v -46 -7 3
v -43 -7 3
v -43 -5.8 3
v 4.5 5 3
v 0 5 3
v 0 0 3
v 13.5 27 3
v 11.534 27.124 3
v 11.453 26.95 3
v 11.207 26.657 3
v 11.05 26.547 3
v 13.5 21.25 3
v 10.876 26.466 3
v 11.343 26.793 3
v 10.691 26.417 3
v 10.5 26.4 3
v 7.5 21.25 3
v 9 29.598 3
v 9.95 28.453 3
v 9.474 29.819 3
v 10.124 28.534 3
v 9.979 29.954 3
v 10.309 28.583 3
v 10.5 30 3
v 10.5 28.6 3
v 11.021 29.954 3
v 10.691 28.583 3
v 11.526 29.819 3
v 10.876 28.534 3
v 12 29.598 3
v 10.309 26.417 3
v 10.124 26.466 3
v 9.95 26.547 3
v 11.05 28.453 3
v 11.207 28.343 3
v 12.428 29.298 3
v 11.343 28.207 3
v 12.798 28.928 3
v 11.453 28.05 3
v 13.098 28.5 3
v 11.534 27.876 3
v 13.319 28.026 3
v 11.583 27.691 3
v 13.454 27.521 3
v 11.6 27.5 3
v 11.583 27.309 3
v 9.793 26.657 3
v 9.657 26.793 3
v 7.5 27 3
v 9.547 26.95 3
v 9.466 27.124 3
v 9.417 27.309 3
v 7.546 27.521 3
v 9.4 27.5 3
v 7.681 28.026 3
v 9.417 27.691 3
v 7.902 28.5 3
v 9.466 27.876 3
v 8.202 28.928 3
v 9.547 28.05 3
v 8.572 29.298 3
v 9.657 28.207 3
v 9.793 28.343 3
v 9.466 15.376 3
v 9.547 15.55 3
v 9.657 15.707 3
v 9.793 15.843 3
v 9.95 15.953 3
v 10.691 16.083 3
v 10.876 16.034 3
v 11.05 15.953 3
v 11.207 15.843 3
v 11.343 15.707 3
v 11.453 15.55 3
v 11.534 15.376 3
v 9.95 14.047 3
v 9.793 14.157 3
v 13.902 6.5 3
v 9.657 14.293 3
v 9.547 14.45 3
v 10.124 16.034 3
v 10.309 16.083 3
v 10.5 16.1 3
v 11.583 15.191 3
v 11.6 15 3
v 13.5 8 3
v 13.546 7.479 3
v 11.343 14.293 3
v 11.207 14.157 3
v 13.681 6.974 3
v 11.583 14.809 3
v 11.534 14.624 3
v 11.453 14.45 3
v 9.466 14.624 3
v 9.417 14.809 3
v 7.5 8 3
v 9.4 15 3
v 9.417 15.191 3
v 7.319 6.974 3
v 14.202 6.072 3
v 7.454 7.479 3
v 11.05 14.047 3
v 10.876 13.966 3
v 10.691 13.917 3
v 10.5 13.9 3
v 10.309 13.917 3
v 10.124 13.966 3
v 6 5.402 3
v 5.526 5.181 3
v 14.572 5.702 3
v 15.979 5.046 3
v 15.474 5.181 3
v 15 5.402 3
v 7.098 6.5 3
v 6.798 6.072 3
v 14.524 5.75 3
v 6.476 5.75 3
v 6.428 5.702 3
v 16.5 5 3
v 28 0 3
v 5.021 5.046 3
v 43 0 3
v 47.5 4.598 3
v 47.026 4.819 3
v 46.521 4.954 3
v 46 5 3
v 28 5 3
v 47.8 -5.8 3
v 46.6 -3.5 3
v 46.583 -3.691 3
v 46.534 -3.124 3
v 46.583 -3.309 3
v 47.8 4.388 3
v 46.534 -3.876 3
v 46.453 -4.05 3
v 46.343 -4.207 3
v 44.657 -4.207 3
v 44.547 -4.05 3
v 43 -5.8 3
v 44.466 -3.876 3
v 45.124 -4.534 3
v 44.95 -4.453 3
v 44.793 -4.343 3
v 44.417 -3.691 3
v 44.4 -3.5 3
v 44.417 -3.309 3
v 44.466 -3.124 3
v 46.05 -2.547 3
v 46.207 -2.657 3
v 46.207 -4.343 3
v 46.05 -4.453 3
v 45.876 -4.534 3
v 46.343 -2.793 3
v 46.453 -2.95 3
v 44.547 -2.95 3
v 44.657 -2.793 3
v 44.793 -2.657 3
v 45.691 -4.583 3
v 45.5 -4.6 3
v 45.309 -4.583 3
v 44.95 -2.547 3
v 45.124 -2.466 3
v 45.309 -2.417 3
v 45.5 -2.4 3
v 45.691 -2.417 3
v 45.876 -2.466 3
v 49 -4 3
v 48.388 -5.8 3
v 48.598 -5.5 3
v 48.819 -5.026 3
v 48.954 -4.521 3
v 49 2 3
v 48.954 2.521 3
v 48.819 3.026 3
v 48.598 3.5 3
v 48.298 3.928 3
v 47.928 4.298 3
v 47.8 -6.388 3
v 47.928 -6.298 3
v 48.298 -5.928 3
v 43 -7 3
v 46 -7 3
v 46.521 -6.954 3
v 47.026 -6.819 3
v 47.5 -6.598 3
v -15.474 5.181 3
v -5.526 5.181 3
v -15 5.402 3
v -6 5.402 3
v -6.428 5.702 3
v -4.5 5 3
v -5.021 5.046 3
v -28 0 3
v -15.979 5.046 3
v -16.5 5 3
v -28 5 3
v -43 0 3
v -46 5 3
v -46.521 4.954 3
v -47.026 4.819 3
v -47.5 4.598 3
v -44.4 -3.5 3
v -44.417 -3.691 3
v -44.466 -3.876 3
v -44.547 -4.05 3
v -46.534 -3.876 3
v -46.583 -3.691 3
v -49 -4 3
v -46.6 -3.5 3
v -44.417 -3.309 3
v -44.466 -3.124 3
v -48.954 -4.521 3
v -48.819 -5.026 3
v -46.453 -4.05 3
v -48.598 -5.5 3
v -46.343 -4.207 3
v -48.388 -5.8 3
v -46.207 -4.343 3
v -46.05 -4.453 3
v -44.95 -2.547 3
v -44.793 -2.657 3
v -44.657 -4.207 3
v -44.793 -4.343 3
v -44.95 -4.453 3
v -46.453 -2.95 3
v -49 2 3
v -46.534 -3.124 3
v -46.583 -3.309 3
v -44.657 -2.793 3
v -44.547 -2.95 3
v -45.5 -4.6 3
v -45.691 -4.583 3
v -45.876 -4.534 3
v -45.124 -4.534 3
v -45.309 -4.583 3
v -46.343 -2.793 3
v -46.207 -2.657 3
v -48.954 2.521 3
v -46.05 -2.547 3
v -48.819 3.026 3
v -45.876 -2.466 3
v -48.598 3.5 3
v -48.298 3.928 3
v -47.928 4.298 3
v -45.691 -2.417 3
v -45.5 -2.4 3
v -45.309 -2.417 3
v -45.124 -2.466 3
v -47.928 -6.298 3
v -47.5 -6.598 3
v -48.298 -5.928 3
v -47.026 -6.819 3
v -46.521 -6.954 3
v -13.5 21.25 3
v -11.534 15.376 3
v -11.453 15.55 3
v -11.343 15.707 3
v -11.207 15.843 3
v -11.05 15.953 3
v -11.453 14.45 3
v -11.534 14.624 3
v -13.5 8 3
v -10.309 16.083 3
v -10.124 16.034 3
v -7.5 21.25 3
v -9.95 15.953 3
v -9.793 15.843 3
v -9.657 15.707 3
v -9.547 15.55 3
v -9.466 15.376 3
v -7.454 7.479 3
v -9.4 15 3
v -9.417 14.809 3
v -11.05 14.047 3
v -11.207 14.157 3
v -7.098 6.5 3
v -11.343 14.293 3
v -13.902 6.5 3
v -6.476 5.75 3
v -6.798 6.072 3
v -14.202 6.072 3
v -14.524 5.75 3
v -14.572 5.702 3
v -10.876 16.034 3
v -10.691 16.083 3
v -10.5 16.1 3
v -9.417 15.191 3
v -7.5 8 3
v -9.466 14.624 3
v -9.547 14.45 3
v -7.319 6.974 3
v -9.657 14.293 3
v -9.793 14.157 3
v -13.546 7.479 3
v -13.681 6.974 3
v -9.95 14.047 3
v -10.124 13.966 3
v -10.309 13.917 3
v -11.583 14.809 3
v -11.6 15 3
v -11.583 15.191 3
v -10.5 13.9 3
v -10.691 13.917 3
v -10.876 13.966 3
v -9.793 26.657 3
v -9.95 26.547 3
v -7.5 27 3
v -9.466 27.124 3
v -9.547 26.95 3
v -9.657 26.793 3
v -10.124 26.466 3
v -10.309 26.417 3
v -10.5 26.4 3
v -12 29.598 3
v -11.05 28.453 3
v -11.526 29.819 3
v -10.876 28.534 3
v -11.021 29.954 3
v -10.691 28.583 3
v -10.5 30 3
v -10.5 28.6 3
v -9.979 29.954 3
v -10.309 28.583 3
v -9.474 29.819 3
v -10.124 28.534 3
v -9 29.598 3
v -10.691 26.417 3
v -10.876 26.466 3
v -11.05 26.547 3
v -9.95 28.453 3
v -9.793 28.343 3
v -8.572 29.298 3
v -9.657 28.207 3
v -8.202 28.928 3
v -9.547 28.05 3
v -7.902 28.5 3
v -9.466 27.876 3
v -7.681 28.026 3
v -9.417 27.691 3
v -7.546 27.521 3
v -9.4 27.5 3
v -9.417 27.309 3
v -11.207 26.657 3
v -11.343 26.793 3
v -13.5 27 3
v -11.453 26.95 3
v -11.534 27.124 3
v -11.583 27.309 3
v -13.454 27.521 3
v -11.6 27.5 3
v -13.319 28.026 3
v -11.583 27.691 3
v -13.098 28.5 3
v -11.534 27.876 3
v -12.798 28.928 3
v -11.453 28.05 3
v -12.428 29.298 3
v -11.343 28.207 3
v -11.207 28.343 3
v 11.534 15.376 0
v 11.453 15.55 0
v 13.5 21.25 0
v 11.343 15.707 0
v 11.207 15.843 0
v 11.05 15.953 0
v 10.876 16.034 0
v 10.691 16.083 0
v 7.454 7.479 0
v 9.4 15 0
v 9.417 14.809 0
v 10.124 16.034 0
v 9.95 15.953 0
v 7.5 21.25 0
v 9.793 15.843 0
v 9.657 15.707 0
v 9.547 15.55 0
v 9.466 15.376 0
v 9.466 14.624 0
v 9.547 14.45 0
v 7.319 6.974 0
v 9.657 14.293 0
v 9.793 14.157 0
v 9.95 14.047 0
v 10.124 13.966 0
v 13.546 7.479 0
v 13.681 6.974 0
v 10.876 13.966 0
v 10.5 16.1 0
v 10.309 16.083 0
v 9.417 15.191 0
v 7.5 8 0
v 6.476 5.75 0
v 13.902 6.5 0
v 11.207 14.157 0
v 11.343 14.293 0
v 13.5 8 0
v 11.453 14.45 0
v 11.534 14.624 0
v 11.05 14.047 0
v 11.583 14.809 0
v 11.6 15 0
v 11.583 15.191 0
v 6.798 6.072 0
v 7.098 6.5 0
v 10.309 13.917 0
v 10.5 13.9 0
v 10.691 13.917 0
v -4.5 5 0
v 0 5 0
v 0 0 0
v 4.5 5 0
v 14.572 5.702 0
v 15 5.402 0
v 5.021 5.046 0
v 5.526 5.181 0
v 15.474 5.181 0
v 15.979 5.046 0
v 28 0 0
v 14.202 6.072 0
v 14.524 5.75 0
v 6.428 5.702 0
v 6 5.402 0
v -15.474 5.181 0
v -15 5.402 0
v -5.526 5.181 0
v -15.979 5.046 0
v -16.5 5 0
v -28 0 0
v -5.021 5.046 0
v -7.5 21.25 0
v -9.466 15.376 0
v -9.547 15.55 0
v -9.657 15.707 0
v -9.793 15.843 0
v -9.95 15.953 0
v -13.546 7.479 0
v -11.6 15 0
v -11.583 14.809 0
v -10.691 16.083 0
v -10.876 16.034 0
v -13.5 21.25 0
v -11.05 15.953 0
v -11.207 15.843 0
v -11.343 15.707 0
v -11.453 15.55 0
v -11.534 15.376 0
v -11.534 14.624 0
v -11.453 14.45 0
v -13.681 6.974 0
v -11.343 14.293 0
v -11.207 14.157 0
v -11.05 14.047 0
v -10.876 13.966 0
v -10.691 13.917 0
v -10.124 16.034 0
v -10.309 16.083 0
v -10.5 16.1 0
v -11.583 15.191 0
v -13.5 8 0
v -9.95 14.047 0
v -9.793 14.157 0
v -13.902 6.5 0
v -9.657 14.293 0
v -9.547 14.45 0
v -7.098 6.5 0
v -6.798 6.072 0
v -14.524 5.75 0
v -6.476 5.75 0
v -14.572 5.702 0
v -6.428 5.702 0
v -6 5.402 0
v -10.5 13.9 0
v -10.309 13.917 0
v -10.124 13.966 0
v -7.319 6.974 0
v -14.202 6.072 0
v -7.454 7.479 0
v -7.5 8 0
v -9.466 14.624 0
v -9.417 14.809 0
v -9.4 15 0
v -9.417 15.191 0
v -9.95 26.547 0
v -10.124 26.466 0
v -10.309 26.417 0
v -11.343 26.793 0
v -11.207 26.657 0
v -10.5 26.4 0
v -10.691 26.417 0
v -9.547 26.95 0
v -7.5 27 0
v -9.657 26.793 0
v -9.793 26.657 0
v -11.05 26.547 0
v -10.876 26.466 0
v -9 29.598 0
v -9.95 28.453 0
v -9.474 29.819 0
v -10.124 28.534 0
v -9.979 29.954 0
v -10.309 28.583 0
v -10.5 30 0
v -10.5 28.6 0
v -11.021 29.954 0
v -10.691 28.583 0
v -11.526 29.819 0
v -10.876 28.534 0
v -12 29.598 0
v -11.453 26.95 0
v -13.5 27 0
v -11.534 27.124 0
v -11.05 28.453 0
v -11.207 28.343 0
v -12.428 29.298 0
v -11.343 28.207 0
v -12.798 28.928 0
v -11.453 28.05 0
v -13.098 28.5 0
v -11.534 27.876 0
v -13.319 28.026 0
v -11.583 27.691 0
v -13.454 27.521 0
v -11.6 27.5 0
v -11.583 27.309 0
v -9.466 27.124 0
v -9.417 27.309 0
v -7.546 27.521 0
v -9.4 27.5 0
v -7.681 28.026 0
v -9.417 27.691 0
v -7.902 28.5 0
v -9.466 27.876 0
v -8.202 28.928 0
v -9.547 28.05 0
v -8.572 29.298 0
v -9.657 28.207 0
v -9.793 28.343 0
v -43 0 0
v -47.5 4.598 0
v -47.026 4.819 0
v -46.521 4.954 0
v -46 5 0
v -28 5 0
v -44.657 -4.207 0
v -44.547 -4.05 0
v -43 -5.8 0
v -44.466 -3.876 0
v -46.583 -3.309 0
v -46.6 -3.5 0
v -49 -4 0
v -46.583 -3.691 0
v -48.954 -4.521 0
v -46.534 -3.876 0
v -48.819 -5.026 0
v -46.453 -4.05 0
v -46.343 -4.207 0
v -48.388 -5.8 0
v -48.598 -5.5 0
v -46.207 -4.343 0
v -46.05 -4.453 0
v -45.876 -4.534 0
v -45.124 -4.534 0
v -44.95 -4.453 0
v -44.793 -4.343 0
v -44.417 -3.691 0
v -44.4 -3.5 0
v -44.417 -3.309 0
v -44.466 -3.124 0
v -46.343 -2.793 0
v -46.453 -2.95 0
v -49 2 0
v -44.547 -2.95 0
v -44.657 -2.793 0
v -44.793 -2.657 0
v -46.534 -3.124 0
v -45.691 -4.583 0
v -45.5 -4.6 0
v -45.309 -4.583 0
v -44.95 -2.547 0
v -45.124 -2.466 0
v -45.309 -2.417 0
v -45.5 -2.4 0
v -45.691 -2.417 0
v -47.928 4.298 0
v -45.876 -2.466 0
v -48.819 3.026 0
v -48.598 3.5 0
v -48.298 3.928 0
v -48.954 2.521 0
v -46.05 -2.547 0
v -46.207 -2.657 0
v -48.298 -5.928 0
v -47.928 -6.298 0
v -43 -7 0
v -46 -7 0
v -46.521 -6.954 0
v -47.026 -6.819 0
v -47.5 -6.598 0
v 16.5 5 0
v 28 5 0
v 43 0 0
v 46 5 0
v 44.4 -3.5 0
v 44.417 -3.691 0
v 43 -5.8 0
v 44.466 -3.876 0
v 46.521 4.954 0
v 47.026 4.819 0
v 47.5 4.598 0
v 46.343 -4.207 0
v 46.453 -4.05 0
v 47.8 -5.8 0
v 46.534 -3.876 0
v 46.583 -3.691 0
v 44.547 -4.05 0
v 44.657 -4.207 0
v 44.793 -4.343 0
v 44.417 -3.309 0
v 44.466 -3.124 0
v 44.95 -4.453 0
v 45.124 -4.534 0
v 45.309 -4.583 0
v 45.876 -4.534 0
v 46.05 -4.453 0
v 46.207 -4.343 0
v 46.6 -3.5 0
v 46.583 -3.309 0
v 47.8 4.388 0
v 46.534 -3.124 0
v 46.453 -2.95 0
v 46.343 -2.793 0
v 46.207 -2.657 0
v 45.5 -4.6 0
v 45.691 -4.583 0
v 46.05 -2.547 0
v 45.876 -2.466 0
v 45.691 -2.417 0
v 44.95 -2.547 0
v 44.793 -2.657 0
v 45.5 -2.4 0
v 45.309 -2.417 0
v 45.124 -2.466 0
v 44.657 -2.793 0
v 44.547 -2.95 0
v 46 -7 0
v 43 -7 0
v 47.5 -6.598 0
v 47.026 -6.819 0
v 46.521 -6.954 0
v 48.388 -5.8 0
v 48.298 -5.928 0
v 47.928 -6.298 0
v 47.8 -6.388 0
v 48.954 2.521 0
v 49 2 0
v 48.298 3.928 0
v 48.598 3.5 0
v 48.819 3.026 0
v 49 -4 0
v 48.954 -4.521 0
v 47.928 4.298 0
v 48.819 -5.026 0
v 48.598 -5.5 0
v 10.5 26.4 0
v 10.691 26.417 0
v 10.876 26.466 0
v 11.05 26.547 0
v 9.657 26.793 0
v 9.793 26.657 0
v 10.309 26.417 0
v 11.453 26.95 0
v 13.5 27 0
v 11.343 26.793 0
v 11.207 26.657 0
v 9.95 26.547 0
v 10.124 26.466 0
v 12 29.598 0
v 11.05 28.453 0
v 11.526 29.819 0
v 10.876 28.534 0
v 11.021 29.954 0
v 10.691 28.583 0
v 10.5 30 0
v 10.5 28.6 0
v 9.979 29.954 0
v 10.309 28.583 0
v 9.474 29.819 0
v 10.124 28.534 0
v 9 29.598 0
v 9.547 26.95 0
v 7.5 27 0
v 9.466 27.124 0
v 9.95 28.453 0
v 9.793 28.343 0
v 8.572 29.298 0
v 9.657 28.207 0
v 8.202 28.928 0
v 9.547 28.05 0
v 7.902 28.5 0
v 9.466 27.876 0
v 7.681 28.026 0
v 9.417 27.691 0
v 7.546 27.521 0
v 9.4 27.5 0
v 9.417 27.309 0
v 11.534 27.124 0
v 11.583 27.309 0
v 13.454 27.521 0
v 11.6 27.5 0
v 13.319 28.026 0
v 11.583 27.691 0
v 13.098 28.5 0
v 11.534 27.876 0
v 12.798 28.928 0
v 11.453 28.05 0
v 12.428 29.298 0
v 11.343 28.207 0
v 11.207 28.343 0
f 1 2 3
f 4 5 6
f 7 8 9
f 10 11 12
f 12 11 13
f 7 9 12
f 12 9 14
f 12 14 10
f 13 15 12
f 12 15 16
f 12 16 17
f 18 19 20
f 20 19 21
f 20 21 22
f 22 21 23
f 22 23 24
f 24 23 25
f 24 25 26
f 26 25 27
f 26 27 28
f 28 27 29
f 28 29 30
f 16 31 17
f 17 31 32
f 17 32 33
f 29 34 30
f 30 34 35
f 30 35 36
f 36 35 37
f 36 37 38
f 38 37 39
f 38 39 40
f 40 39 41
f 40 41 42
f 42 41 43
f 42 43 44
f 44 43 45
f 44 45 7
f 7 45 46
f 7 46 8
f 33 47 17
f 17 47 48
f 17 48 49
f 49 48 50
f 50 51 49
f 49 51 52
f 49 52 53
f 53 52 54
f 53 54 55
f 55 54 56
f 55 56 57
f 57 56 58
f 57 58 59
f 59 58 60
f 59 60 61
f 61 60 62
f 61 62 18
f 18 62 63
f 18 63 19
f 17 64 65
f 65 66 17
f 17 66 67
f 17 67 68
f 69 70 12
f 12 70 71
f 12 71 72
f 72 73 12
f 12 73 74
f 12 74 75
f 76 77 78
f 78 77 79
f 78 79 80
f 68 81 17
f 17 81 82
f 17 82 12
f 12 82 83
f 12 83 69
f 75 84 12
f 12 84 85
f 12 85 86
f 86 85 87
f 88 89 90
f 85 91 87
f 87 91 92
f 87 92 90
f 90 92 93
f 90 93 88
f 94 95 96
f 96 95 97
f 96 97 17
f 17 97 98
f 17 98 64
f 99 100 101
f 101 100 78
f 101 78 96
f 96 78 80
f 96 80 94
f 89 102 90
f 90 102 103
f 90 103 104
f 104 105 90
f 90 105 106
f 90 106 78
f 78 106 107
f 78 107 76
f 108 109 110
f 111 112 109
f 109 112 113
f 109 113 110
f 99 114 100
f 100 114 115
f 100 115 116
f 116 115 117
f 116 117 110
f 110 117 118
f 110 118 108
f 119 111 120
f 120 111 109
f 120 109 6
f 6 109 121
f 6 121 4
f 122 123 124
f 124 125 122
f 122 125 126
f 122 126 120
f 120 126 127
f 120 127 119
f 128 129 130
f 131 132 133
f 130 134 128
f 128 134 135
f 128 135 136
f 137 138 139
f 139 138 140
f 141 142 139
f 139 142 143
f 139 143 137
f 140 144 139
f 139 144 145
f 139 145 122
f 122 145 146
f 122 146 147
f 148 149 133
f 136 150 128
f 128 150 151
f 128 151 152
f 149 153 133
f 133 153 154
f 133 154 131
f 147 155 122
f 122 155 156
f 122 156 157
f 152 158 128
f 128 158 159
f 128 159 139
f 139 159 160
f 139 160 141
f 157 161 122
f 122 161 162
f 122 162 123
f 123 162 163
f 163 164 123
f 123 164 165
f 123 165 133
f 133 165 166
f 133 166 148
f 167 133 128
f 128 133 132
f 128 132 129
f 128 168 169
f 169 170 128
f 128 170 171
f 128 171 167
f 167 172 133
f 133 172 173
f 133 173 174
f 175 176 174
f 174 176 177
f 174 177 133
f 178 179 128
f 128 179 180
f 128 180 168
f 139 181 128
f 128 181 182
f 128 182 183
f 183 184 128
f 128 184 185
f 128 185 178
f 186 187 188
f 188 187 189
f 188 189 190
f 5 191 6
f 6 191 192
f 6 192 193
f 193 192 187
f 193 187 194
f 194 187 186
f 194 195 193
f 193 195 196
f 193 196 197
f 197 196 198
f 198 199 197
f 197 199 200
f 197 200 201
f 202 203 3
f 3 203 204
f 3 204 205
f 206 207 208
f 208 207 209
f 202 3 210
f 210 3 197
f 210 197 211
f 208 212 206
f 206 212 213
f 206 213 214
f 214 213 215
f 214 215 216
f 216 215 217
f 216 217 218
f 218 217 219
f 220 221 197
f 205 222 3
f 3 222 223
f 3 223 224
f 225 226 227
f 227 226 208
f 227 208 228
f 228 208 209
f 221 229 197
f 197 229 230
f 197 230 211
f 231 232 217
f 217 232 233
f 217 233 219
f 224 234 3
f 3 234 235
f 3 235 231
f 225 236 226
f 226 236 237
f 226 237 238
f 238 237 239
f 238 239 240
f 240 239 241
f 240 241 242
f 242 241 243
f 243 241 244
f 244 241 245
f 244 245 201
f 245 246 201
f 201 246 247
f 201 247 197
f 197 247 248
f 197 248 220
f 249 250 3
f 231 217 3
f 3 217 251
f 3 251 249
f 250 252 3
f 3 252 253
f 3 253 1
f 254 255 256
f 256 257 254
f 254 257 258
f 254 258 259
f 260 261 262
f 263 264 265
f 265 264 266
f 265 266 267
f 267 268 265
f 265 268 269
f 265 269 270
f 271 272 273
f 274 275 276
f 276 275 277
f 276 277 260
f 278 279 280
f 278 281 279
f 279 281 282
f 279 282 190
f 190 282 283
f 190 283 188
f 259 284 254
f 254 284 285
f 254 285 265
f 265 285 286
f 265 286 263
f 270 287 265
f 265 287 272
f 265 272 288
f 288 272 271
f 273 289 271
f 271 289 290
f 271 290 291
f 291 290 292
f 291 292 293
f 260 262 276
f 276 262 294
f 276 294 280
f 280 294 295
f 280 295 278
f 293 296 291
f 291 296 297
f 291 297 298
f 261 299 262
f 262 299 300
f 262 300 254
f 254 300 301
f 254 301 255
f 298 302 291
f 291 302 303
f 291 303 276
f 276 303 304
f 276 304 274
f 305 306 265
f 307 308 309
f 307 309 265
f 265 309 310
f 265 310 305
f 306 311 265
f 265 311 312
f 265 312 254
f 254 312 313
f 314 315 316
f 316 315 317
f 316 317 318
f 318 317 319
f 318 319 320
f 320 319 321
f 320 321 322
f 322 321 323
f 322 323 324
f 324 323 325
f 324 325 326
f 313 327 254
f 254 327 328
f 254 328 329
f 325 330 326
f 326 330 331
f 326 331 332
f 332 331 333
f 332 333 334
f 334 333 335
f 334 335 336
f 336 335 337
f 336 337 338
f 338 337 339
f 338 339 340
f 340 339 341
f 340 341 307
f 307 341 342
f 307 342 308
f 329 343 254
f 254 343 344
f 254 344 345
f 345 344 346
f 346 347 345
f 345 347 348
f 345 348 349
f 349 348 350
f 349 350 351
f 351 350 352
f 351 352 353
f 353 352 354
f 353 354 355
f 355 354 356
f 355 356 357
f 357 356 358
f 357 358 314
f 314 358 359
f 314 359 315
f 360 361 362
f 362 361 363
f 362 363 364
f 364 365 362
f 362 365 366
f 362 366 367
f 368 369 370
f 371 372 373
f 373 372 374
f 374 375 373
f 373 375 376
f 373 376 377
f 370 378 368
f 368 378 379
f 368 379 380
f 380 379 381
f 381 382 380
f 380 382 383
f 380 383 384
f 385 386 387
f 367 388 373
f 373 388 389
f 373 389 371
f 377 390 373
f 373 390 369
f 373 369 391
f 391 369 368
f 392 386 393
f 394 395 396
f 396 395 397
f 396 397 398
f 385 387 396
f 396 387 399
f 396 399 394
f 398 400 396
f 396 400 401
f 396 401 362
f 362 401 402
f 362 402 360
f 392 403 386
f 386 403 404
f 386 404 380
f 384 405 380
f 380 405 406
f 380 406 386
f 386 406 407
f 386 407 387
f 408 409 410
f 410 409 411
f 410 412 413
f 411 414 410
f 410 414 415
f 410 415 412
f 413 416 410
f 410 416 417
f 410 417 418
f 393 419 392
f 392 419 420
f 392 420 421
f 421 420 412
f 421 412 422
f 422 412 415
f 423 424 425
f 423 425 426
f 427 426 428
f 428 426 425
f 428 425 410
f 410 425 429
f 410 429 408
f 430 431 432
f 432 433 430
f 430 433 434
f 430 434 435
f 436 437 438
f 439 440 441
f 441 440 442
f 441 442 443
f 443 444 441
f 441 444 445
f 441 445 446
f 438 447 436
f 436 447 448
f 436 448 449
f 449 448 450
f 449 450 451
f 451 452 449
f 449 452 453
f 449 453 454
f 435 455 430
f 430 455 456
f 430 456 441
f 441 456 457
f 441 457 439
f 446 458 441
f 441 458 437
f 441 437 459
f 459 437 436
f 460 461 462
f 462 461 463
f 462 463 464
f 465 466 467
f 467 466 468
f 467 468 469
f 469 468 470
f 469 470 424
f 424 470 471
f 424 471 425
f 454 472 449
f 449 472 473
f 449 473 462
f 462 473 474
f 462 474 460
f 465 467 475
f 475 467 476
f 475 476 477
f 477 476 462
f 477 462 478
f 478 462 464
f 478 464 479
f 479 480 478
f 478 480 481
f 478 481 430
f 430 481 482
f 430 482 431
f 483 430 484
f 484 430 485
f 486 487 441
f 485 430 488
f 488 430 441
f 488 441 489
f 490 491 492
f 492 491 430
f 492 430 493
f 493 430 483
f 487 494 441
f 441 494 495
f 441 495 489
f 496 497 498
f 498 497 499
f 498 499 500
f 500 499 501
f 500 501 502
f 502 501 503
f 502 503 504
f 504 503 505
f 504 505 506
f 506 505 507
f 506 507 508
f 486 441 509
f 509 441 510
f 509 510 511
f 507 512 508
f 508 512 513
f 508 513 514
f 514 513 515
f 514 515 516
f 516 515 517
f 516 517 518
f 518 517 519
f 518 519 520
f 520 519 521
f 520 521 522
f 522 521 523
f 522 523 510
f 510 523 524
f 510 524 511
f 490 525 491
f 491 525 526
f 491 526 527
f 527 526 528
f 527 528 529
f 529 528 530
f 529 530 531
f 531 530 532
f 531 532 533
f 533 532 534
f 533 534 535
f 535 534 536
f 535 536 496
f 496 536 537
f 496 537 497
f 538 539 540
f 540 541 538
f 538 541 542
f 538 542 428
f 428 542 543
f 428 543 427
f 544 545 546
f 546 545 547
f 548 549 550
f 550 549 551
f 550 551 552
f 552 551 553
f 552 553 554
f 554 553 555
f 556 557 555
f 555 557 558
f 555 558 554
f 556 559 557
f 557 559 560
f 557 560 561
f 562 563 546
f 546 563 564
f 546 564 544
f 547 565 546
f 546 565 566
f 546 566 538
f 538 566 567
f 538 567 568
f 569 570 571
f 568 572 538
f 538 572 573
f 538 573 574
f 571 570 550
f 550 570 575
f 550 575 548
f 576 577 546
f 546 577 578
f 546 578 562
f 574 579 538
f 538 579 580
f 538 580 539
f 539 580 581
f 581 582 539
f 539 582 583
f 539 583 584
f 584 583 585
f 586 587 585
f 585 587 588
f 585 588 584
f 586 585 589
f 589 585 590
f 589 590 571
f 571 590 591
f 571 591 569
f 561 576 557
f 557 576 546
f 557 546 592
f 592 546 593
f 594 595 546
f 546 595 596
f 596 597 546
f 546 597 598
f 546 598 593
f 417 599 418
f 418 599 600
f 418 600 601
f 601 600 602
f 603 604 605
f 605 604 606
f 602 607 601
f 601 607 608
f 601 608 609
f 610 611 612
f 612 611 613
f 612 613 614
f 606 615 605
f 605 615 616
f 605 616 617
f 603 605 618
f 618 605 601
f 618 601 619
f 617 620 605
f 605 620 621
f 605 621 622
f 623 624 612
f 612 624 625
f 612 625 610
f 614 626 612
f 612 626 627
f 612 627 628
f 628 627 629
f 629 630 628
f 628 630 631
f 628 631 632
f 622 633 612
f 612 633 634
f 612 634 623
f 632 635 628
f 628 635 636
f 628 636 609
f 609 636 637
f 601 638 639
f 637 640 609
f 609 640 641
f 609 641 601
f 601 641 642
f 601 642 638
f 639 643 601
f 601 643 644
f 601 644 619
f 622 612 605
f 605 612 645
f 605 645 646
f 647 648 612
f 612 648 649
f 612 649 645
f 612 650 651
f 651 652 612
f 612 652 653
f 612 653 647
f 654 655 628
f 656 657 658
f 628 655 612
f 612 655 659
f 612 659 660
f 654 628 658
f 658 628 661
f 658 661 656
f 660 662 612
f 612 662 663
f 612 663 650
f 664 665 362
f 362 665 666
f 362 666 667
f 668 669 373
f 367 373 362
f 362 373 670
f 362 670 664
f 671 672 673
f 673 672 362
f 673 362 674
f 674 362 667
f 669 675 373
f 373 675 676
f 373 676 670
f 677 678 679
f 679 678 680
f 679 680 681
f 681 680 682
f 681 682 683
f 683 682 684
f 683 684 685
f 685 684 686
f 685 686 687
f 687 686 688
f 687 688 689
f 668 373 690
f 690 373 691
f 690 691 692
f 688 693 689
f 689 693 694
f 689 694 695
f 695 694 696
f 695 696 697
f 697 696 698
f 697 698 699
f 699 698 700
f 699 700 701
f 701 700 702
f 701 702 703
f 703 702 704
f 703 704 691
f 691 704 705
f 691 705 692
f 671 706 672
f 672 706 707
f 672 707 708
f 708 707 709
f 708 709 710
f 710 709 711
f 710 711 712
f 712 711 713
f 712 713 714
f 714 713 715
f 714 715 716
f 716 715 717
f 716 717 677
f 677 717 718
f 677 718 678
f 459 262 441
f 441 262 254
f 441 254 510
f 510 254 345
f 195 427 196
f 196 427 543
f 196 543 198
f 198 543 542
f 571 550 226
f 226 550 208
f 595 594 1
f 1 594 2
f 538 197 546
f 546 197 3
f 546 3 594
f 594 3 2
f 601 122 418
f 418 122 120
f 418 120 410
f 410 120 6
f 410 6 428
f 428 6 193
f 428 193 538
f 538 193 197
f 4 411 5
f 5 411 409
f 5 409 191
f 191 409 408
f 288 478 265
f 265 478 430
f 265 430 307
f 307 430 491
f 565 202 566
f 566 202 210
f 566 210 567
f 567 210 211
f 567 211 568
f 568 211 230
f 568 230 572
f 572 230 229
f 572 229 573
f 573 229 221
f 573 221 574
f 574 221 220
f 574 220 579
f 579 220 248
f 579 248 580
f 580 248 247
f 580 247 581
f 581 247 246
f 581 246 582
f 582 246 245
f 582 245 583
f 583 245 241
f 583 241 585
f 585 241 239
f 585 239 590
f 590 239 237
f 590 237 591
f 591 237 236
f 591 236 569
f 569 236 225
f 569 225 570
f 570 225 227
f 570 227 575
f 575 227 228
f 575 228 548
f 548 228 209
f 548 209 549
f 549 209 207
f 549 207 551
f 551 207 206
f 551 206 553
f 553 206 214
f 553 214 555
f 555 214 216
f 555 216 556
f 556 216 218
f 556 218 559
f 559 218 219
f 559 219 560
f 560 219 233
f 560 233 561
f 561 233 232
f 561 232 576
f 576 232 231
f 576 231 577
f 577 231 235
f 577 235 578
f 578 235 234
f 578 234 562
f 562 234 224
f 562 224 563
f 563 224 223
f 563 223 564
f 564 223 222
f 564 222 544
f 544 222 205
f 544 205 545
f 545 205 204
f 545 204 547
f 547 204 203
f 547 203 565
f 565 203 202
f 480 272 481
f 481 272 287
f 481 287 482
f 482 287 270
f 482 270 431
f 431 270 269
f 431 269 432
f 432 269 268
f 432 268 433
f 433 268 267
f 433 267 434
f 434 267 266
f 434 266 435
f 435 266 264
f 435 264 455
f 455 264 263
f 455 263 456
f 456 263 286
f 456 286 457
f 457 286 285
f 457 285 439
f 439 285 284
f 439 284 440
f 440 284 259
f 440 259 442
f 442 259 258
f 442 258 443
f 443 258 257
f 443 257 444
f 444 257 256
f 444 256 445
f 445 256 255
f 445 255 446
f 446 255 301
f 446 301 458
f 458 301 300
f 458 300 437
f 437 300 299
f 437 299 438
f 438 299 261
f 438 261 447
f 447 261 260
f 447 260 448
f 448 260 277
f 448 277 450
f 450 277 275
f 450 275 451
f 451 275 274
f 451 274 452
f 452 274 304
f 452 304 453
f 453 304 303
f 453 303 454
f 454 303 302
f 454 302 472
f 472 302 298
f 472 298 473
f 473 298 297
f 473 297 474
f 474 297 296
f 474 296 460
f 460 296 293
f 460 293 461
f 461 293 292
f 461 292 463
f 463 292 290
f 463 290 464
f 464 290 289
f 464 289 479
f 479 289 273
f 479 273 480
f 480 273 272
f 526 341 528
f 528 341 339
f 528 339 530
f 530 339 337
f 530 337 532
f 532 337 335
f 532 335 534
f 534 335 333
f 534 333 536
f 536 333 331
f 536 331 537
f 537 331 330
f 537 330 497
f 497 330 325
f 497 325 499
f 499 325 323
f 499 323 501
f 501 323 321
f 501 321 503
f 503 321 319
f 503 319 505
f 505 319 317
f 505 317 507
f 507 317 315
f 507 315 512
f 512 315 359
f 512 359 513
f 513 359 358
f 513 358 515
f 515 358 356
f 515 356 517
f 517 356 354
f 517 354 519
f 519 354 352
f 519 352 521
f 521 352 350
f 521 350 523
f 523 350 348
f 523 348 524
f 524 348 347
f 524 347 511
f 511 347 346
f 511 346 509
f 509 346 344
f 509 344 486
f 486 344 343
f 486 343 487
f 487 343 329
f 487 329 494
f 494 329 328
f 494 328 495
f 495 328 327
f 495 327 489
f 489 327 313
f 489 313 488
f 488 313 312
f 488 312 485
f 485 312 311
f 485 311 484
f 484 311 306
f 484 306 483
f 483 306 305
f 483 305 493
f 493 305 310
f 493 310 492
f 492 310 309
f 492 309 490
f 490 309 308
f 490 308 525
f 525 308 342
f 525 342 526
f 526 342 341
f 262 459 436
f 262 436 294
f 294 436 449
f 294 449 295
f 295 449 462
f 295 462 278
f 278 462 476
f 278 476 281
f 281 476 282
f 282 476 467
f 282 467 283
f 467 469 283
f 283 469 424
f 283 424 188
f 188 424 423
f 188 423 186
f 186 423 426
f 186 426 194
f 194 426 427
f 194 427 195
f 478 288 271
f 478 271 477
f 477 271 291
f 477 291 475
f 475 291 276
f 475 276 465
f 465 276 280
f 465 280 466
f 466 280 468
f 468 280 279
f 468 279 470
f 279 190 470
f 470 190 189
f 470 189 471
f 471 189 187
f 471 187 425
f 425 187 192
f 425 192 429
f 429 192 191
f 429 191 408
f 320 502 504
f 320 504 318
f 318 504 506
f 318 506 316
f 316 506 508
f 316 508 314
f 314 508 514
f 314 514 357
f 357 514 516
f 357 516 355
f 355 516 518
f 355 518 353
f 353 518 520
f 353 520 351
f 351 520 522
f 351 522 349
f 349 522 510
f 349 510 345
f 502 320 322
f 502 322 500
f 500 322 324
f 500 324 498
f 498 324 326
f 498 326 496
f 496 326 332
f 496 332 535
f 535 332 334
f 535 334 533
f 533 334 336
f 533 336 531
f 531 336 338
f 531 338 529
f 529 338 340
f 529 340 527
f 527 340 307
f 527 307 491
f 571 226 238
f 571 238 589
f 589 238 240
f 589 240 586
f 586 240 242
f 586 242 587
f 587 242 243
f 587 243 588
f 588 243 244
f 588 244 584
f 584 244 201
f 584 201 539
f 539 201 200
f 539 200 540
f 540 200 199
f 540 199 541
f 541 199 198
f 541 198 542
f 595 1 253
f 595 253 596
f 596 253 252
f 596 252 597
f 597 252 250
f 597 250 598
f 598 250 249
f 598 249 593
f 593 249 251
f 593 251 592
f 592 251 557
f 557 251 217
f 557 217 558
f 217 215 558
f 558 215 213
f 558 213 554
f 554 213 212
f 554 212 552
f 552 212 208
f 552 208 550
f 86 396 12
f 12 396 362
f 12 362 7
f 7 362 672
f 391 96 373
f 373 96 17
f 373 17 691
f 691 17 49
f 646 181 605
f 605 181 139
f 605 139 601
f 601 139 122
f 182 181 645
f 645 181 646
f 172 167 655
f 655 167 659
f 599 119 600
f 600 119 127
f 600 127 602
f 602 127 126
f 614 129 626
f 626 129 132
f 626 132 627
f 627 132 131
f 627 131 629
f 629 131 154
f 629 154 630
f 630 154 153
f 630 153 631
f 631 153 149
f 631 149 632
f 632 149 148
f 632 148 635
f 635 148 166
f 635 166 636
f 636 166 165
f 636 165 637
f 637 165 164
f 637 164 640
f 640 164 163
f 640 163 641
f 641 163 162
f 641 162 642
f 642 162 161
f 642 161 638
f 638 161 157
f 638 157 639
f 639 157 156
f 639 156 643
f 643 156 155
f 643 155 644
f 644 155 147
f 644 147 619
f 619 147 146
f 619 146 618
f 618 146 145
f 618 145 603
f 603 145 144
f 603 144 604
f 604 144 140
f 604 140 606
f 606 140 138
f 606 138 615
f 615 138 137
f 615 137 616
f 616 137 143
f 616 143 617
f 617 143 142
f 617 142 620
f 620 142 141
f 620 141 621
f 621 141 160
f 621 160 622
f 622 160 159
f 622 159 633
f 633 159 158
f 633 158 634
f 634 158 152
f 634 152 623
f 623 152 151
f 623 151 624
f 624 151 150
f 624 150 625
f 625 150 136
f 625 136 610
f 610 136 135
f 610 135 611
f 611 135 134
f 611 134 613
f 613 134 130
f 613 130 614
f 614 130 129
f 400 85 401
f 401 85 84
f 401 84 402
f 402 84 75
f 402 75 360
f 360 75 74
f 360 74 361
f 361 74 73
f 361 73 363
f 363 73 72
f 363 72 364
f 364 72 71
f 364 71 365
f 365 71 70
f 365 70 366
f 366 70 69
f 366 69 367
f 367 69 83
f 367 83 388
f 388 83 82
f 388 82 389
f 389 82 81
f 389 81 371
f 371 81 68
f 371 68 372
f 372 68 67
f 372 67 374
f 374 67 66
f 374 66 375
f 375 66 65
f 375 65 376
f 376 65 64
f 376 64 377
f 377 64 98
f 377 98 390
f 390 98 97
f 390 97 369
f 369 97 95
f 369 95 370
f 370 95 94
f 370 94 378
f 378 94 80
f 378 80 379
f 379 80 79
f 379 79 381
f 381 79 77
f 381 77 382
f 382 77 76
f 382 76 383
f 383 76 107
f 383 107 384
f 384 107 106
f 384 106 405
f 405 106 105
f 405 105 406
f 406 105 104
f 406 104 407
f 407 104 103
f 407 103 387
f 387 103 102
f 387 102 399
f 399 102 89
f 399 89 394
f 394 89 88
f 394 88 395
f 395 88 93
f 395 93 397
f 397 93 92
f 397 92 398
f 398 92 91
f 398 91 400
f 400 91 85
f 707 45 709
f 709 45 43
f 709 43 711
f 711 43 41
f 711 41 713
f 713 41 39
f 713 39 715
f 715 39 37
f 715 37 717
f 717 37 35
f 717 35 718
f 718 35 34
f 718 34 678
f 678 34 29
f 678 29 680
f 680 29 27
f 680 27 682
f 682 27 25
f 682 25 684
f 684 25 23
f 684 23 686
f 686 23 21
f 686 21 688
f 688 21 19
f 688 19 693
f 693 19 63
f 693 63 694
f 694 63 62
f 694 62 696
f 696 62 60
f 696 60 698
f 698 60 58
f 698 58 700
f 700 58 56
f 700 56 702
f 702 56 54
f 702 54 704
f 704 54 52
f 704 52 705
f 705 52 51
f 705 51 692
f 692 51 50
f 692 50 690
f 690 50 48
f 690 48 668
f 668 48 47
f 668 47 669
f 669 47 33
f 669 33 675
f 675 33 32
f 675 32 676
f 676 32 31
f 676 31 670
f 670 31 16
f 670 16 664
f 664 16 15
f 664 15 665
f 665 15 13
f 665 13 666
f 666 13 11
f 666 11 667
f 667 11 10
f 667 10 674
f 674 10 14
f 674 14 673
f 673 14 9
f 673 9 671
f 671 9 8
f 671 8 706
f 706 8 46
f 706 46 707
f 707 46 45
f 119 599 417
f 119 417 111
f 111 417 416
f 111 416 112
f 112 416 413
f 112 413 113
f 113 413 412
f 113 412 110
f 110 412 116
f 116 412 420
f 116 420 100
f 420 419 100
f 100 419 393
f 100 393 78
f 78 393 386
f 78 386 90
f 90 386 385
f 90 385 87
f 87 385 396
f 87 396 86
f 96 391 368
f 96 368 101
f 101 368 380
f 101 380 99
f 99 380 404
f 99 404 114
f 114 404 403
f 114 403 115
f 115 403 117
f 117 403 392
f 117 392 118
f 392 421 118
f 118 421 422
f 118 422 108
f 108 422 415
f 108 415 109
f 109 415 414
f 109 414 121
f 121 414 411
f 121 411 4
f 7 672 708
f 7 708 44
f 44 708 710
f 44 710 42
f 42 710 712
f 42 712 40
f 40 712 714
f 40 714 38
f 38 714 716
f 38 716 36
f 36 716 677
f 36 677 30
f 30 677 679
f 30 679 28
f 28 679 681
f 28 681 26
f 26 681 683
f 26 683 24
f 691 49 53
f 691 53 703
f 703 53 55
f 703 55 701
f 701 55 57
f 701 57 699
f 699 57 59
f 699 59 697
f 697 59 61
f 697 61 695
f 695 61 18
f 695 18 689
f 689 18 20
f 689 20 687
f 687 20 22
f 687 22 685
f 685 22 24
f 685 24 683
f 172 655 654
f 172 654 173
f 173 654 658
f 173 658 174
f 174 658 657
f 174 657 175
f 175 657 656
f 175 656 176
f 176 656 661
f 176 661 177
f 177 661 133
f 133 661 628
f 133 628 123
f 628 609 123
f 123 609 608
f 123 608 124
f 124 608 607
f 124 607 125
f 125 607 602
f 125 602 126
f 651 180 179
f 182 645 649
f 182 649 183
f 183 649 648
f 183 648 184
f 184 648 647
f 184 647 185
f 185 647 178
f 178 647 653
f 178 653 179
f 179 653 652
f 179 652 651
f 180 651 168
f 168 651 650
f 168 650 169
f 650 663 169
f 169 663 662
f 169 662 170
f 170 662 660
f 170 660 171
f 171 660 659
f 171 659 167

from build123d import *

# Parameters (mm, degrees)
BOSS_EXTRU_1_DEPTH      = 3
ESQUISSE2_R             = 1.1
ENL_V_MAT_EXTRU_1_DEPTH = 3
ESQUISSE3_R             = 1.1
ENL_V_MAT_EXTRU_2_DEPTH = 3
CONG_1_R                = 3
CONG_1_OF_SYM_TRIE1_R   = 3


with BuildPart() as part:
    # Esquisse1 → Boss.-Extru.1 (new body)
    with BuildSketch(Plane.XY):
        Polygon((-13.5, 5), (-49, 5), (-49, 0), (-49, -7), (-43, -7), (-43, 0), (0, 0), (0, 5), (-7.5, 5), (-7.5, 30), (-13.5, 30), align=None)
    boss_extru_1 = extrude(amount=BOSS_EXTRU_1_DEPTH)

    # Esquisse2 → Enlèv. mat.-Extru.1 (cut)
    with BuildSketch(Plane.XY.offset(3)):
        with Locations((-45.5, -3.5)):
            Circle(ESQUISSE2_R)
    enl_v_mat_extru_1 = extrude(amount=-ENL_V_MAT_EXTRU_1_DEPTH, mode=Mode.SUBTRACT)

    # Esquisse3 → Enlèv. mat.-Extru.2 (cut)
    with BuildSketch(Plane.XY.offset(3)):
        with Locations((-10.5, 15)):
            Circle(ESQUISSE3_R)
        with Locations((-10.5, 27.5)):
            Circle(ESQUISSE3_R)
    enl_v_mat_extru_2 = extrude(amount=-ENL_V_MAT_EXTRU_2_DEPTH, mode=Mode.SUBTRACT)

    # Congé1
    cong_1_edges = [part.edges().sort_by_distance(p)[0] for p in [
        (-13.5, 5, 1.5),
        (-7.5, 5, 1.5),
        (-7.5, 30, 1.5),
        (-13.5, 30, 1.5),
        (-49, 5, 1.5),
        (-49, -7, 1.5),
    ]]
    fillet(cong_1_edges, radius=CONG_1_R - 0.0001)  # a hair under: the kernel refuses the full size

    # Symétrie1: Boss.-Extru.1, Enlèv. mat.-Extru.1, Enlèv. mat.-Extru.2 across plane
    add(boss_extru_1.mirror(Plane(origin=(0, 0, 0), x_dir=(0, 0, 1), z_dir=(1, 0, 0))))
    add(enl_v_mat_extru_1.mirror(Plane(origin=(0, 0, 0), x_dir=(0, 0, 1), z_dir=(1, 0, 0))), mode=Mode.SUBTRACT)
    add(enl_v_mat_extru_2.mirror(Plane(origin=(0, 0, 0), x_dir=(0, 0, 1), z_dir=(1, 0, 0))), mode=Mode.SUBTRACT)

    # Congé1 of Symétrie1
    cong_1_of_sym_trie1_edges = [part.edges().sort_by_distance(p)[0] for p in [
        (13.5, 5, 1.5),
        (7.5, 5, 1.5),
        (7.5, 30, 1.5),
        (13.5, 30, 1.5),
        (49, 5, 1.5),
        (49, -7, 1.5),
    ]]
    fillet(cong_1_of_sym_trie1_edges, radius=CONG_1_OF_SYM_TRIE1_R - 0.0001)  # a hair under: the kernel refuses the full size


solid = part.part
